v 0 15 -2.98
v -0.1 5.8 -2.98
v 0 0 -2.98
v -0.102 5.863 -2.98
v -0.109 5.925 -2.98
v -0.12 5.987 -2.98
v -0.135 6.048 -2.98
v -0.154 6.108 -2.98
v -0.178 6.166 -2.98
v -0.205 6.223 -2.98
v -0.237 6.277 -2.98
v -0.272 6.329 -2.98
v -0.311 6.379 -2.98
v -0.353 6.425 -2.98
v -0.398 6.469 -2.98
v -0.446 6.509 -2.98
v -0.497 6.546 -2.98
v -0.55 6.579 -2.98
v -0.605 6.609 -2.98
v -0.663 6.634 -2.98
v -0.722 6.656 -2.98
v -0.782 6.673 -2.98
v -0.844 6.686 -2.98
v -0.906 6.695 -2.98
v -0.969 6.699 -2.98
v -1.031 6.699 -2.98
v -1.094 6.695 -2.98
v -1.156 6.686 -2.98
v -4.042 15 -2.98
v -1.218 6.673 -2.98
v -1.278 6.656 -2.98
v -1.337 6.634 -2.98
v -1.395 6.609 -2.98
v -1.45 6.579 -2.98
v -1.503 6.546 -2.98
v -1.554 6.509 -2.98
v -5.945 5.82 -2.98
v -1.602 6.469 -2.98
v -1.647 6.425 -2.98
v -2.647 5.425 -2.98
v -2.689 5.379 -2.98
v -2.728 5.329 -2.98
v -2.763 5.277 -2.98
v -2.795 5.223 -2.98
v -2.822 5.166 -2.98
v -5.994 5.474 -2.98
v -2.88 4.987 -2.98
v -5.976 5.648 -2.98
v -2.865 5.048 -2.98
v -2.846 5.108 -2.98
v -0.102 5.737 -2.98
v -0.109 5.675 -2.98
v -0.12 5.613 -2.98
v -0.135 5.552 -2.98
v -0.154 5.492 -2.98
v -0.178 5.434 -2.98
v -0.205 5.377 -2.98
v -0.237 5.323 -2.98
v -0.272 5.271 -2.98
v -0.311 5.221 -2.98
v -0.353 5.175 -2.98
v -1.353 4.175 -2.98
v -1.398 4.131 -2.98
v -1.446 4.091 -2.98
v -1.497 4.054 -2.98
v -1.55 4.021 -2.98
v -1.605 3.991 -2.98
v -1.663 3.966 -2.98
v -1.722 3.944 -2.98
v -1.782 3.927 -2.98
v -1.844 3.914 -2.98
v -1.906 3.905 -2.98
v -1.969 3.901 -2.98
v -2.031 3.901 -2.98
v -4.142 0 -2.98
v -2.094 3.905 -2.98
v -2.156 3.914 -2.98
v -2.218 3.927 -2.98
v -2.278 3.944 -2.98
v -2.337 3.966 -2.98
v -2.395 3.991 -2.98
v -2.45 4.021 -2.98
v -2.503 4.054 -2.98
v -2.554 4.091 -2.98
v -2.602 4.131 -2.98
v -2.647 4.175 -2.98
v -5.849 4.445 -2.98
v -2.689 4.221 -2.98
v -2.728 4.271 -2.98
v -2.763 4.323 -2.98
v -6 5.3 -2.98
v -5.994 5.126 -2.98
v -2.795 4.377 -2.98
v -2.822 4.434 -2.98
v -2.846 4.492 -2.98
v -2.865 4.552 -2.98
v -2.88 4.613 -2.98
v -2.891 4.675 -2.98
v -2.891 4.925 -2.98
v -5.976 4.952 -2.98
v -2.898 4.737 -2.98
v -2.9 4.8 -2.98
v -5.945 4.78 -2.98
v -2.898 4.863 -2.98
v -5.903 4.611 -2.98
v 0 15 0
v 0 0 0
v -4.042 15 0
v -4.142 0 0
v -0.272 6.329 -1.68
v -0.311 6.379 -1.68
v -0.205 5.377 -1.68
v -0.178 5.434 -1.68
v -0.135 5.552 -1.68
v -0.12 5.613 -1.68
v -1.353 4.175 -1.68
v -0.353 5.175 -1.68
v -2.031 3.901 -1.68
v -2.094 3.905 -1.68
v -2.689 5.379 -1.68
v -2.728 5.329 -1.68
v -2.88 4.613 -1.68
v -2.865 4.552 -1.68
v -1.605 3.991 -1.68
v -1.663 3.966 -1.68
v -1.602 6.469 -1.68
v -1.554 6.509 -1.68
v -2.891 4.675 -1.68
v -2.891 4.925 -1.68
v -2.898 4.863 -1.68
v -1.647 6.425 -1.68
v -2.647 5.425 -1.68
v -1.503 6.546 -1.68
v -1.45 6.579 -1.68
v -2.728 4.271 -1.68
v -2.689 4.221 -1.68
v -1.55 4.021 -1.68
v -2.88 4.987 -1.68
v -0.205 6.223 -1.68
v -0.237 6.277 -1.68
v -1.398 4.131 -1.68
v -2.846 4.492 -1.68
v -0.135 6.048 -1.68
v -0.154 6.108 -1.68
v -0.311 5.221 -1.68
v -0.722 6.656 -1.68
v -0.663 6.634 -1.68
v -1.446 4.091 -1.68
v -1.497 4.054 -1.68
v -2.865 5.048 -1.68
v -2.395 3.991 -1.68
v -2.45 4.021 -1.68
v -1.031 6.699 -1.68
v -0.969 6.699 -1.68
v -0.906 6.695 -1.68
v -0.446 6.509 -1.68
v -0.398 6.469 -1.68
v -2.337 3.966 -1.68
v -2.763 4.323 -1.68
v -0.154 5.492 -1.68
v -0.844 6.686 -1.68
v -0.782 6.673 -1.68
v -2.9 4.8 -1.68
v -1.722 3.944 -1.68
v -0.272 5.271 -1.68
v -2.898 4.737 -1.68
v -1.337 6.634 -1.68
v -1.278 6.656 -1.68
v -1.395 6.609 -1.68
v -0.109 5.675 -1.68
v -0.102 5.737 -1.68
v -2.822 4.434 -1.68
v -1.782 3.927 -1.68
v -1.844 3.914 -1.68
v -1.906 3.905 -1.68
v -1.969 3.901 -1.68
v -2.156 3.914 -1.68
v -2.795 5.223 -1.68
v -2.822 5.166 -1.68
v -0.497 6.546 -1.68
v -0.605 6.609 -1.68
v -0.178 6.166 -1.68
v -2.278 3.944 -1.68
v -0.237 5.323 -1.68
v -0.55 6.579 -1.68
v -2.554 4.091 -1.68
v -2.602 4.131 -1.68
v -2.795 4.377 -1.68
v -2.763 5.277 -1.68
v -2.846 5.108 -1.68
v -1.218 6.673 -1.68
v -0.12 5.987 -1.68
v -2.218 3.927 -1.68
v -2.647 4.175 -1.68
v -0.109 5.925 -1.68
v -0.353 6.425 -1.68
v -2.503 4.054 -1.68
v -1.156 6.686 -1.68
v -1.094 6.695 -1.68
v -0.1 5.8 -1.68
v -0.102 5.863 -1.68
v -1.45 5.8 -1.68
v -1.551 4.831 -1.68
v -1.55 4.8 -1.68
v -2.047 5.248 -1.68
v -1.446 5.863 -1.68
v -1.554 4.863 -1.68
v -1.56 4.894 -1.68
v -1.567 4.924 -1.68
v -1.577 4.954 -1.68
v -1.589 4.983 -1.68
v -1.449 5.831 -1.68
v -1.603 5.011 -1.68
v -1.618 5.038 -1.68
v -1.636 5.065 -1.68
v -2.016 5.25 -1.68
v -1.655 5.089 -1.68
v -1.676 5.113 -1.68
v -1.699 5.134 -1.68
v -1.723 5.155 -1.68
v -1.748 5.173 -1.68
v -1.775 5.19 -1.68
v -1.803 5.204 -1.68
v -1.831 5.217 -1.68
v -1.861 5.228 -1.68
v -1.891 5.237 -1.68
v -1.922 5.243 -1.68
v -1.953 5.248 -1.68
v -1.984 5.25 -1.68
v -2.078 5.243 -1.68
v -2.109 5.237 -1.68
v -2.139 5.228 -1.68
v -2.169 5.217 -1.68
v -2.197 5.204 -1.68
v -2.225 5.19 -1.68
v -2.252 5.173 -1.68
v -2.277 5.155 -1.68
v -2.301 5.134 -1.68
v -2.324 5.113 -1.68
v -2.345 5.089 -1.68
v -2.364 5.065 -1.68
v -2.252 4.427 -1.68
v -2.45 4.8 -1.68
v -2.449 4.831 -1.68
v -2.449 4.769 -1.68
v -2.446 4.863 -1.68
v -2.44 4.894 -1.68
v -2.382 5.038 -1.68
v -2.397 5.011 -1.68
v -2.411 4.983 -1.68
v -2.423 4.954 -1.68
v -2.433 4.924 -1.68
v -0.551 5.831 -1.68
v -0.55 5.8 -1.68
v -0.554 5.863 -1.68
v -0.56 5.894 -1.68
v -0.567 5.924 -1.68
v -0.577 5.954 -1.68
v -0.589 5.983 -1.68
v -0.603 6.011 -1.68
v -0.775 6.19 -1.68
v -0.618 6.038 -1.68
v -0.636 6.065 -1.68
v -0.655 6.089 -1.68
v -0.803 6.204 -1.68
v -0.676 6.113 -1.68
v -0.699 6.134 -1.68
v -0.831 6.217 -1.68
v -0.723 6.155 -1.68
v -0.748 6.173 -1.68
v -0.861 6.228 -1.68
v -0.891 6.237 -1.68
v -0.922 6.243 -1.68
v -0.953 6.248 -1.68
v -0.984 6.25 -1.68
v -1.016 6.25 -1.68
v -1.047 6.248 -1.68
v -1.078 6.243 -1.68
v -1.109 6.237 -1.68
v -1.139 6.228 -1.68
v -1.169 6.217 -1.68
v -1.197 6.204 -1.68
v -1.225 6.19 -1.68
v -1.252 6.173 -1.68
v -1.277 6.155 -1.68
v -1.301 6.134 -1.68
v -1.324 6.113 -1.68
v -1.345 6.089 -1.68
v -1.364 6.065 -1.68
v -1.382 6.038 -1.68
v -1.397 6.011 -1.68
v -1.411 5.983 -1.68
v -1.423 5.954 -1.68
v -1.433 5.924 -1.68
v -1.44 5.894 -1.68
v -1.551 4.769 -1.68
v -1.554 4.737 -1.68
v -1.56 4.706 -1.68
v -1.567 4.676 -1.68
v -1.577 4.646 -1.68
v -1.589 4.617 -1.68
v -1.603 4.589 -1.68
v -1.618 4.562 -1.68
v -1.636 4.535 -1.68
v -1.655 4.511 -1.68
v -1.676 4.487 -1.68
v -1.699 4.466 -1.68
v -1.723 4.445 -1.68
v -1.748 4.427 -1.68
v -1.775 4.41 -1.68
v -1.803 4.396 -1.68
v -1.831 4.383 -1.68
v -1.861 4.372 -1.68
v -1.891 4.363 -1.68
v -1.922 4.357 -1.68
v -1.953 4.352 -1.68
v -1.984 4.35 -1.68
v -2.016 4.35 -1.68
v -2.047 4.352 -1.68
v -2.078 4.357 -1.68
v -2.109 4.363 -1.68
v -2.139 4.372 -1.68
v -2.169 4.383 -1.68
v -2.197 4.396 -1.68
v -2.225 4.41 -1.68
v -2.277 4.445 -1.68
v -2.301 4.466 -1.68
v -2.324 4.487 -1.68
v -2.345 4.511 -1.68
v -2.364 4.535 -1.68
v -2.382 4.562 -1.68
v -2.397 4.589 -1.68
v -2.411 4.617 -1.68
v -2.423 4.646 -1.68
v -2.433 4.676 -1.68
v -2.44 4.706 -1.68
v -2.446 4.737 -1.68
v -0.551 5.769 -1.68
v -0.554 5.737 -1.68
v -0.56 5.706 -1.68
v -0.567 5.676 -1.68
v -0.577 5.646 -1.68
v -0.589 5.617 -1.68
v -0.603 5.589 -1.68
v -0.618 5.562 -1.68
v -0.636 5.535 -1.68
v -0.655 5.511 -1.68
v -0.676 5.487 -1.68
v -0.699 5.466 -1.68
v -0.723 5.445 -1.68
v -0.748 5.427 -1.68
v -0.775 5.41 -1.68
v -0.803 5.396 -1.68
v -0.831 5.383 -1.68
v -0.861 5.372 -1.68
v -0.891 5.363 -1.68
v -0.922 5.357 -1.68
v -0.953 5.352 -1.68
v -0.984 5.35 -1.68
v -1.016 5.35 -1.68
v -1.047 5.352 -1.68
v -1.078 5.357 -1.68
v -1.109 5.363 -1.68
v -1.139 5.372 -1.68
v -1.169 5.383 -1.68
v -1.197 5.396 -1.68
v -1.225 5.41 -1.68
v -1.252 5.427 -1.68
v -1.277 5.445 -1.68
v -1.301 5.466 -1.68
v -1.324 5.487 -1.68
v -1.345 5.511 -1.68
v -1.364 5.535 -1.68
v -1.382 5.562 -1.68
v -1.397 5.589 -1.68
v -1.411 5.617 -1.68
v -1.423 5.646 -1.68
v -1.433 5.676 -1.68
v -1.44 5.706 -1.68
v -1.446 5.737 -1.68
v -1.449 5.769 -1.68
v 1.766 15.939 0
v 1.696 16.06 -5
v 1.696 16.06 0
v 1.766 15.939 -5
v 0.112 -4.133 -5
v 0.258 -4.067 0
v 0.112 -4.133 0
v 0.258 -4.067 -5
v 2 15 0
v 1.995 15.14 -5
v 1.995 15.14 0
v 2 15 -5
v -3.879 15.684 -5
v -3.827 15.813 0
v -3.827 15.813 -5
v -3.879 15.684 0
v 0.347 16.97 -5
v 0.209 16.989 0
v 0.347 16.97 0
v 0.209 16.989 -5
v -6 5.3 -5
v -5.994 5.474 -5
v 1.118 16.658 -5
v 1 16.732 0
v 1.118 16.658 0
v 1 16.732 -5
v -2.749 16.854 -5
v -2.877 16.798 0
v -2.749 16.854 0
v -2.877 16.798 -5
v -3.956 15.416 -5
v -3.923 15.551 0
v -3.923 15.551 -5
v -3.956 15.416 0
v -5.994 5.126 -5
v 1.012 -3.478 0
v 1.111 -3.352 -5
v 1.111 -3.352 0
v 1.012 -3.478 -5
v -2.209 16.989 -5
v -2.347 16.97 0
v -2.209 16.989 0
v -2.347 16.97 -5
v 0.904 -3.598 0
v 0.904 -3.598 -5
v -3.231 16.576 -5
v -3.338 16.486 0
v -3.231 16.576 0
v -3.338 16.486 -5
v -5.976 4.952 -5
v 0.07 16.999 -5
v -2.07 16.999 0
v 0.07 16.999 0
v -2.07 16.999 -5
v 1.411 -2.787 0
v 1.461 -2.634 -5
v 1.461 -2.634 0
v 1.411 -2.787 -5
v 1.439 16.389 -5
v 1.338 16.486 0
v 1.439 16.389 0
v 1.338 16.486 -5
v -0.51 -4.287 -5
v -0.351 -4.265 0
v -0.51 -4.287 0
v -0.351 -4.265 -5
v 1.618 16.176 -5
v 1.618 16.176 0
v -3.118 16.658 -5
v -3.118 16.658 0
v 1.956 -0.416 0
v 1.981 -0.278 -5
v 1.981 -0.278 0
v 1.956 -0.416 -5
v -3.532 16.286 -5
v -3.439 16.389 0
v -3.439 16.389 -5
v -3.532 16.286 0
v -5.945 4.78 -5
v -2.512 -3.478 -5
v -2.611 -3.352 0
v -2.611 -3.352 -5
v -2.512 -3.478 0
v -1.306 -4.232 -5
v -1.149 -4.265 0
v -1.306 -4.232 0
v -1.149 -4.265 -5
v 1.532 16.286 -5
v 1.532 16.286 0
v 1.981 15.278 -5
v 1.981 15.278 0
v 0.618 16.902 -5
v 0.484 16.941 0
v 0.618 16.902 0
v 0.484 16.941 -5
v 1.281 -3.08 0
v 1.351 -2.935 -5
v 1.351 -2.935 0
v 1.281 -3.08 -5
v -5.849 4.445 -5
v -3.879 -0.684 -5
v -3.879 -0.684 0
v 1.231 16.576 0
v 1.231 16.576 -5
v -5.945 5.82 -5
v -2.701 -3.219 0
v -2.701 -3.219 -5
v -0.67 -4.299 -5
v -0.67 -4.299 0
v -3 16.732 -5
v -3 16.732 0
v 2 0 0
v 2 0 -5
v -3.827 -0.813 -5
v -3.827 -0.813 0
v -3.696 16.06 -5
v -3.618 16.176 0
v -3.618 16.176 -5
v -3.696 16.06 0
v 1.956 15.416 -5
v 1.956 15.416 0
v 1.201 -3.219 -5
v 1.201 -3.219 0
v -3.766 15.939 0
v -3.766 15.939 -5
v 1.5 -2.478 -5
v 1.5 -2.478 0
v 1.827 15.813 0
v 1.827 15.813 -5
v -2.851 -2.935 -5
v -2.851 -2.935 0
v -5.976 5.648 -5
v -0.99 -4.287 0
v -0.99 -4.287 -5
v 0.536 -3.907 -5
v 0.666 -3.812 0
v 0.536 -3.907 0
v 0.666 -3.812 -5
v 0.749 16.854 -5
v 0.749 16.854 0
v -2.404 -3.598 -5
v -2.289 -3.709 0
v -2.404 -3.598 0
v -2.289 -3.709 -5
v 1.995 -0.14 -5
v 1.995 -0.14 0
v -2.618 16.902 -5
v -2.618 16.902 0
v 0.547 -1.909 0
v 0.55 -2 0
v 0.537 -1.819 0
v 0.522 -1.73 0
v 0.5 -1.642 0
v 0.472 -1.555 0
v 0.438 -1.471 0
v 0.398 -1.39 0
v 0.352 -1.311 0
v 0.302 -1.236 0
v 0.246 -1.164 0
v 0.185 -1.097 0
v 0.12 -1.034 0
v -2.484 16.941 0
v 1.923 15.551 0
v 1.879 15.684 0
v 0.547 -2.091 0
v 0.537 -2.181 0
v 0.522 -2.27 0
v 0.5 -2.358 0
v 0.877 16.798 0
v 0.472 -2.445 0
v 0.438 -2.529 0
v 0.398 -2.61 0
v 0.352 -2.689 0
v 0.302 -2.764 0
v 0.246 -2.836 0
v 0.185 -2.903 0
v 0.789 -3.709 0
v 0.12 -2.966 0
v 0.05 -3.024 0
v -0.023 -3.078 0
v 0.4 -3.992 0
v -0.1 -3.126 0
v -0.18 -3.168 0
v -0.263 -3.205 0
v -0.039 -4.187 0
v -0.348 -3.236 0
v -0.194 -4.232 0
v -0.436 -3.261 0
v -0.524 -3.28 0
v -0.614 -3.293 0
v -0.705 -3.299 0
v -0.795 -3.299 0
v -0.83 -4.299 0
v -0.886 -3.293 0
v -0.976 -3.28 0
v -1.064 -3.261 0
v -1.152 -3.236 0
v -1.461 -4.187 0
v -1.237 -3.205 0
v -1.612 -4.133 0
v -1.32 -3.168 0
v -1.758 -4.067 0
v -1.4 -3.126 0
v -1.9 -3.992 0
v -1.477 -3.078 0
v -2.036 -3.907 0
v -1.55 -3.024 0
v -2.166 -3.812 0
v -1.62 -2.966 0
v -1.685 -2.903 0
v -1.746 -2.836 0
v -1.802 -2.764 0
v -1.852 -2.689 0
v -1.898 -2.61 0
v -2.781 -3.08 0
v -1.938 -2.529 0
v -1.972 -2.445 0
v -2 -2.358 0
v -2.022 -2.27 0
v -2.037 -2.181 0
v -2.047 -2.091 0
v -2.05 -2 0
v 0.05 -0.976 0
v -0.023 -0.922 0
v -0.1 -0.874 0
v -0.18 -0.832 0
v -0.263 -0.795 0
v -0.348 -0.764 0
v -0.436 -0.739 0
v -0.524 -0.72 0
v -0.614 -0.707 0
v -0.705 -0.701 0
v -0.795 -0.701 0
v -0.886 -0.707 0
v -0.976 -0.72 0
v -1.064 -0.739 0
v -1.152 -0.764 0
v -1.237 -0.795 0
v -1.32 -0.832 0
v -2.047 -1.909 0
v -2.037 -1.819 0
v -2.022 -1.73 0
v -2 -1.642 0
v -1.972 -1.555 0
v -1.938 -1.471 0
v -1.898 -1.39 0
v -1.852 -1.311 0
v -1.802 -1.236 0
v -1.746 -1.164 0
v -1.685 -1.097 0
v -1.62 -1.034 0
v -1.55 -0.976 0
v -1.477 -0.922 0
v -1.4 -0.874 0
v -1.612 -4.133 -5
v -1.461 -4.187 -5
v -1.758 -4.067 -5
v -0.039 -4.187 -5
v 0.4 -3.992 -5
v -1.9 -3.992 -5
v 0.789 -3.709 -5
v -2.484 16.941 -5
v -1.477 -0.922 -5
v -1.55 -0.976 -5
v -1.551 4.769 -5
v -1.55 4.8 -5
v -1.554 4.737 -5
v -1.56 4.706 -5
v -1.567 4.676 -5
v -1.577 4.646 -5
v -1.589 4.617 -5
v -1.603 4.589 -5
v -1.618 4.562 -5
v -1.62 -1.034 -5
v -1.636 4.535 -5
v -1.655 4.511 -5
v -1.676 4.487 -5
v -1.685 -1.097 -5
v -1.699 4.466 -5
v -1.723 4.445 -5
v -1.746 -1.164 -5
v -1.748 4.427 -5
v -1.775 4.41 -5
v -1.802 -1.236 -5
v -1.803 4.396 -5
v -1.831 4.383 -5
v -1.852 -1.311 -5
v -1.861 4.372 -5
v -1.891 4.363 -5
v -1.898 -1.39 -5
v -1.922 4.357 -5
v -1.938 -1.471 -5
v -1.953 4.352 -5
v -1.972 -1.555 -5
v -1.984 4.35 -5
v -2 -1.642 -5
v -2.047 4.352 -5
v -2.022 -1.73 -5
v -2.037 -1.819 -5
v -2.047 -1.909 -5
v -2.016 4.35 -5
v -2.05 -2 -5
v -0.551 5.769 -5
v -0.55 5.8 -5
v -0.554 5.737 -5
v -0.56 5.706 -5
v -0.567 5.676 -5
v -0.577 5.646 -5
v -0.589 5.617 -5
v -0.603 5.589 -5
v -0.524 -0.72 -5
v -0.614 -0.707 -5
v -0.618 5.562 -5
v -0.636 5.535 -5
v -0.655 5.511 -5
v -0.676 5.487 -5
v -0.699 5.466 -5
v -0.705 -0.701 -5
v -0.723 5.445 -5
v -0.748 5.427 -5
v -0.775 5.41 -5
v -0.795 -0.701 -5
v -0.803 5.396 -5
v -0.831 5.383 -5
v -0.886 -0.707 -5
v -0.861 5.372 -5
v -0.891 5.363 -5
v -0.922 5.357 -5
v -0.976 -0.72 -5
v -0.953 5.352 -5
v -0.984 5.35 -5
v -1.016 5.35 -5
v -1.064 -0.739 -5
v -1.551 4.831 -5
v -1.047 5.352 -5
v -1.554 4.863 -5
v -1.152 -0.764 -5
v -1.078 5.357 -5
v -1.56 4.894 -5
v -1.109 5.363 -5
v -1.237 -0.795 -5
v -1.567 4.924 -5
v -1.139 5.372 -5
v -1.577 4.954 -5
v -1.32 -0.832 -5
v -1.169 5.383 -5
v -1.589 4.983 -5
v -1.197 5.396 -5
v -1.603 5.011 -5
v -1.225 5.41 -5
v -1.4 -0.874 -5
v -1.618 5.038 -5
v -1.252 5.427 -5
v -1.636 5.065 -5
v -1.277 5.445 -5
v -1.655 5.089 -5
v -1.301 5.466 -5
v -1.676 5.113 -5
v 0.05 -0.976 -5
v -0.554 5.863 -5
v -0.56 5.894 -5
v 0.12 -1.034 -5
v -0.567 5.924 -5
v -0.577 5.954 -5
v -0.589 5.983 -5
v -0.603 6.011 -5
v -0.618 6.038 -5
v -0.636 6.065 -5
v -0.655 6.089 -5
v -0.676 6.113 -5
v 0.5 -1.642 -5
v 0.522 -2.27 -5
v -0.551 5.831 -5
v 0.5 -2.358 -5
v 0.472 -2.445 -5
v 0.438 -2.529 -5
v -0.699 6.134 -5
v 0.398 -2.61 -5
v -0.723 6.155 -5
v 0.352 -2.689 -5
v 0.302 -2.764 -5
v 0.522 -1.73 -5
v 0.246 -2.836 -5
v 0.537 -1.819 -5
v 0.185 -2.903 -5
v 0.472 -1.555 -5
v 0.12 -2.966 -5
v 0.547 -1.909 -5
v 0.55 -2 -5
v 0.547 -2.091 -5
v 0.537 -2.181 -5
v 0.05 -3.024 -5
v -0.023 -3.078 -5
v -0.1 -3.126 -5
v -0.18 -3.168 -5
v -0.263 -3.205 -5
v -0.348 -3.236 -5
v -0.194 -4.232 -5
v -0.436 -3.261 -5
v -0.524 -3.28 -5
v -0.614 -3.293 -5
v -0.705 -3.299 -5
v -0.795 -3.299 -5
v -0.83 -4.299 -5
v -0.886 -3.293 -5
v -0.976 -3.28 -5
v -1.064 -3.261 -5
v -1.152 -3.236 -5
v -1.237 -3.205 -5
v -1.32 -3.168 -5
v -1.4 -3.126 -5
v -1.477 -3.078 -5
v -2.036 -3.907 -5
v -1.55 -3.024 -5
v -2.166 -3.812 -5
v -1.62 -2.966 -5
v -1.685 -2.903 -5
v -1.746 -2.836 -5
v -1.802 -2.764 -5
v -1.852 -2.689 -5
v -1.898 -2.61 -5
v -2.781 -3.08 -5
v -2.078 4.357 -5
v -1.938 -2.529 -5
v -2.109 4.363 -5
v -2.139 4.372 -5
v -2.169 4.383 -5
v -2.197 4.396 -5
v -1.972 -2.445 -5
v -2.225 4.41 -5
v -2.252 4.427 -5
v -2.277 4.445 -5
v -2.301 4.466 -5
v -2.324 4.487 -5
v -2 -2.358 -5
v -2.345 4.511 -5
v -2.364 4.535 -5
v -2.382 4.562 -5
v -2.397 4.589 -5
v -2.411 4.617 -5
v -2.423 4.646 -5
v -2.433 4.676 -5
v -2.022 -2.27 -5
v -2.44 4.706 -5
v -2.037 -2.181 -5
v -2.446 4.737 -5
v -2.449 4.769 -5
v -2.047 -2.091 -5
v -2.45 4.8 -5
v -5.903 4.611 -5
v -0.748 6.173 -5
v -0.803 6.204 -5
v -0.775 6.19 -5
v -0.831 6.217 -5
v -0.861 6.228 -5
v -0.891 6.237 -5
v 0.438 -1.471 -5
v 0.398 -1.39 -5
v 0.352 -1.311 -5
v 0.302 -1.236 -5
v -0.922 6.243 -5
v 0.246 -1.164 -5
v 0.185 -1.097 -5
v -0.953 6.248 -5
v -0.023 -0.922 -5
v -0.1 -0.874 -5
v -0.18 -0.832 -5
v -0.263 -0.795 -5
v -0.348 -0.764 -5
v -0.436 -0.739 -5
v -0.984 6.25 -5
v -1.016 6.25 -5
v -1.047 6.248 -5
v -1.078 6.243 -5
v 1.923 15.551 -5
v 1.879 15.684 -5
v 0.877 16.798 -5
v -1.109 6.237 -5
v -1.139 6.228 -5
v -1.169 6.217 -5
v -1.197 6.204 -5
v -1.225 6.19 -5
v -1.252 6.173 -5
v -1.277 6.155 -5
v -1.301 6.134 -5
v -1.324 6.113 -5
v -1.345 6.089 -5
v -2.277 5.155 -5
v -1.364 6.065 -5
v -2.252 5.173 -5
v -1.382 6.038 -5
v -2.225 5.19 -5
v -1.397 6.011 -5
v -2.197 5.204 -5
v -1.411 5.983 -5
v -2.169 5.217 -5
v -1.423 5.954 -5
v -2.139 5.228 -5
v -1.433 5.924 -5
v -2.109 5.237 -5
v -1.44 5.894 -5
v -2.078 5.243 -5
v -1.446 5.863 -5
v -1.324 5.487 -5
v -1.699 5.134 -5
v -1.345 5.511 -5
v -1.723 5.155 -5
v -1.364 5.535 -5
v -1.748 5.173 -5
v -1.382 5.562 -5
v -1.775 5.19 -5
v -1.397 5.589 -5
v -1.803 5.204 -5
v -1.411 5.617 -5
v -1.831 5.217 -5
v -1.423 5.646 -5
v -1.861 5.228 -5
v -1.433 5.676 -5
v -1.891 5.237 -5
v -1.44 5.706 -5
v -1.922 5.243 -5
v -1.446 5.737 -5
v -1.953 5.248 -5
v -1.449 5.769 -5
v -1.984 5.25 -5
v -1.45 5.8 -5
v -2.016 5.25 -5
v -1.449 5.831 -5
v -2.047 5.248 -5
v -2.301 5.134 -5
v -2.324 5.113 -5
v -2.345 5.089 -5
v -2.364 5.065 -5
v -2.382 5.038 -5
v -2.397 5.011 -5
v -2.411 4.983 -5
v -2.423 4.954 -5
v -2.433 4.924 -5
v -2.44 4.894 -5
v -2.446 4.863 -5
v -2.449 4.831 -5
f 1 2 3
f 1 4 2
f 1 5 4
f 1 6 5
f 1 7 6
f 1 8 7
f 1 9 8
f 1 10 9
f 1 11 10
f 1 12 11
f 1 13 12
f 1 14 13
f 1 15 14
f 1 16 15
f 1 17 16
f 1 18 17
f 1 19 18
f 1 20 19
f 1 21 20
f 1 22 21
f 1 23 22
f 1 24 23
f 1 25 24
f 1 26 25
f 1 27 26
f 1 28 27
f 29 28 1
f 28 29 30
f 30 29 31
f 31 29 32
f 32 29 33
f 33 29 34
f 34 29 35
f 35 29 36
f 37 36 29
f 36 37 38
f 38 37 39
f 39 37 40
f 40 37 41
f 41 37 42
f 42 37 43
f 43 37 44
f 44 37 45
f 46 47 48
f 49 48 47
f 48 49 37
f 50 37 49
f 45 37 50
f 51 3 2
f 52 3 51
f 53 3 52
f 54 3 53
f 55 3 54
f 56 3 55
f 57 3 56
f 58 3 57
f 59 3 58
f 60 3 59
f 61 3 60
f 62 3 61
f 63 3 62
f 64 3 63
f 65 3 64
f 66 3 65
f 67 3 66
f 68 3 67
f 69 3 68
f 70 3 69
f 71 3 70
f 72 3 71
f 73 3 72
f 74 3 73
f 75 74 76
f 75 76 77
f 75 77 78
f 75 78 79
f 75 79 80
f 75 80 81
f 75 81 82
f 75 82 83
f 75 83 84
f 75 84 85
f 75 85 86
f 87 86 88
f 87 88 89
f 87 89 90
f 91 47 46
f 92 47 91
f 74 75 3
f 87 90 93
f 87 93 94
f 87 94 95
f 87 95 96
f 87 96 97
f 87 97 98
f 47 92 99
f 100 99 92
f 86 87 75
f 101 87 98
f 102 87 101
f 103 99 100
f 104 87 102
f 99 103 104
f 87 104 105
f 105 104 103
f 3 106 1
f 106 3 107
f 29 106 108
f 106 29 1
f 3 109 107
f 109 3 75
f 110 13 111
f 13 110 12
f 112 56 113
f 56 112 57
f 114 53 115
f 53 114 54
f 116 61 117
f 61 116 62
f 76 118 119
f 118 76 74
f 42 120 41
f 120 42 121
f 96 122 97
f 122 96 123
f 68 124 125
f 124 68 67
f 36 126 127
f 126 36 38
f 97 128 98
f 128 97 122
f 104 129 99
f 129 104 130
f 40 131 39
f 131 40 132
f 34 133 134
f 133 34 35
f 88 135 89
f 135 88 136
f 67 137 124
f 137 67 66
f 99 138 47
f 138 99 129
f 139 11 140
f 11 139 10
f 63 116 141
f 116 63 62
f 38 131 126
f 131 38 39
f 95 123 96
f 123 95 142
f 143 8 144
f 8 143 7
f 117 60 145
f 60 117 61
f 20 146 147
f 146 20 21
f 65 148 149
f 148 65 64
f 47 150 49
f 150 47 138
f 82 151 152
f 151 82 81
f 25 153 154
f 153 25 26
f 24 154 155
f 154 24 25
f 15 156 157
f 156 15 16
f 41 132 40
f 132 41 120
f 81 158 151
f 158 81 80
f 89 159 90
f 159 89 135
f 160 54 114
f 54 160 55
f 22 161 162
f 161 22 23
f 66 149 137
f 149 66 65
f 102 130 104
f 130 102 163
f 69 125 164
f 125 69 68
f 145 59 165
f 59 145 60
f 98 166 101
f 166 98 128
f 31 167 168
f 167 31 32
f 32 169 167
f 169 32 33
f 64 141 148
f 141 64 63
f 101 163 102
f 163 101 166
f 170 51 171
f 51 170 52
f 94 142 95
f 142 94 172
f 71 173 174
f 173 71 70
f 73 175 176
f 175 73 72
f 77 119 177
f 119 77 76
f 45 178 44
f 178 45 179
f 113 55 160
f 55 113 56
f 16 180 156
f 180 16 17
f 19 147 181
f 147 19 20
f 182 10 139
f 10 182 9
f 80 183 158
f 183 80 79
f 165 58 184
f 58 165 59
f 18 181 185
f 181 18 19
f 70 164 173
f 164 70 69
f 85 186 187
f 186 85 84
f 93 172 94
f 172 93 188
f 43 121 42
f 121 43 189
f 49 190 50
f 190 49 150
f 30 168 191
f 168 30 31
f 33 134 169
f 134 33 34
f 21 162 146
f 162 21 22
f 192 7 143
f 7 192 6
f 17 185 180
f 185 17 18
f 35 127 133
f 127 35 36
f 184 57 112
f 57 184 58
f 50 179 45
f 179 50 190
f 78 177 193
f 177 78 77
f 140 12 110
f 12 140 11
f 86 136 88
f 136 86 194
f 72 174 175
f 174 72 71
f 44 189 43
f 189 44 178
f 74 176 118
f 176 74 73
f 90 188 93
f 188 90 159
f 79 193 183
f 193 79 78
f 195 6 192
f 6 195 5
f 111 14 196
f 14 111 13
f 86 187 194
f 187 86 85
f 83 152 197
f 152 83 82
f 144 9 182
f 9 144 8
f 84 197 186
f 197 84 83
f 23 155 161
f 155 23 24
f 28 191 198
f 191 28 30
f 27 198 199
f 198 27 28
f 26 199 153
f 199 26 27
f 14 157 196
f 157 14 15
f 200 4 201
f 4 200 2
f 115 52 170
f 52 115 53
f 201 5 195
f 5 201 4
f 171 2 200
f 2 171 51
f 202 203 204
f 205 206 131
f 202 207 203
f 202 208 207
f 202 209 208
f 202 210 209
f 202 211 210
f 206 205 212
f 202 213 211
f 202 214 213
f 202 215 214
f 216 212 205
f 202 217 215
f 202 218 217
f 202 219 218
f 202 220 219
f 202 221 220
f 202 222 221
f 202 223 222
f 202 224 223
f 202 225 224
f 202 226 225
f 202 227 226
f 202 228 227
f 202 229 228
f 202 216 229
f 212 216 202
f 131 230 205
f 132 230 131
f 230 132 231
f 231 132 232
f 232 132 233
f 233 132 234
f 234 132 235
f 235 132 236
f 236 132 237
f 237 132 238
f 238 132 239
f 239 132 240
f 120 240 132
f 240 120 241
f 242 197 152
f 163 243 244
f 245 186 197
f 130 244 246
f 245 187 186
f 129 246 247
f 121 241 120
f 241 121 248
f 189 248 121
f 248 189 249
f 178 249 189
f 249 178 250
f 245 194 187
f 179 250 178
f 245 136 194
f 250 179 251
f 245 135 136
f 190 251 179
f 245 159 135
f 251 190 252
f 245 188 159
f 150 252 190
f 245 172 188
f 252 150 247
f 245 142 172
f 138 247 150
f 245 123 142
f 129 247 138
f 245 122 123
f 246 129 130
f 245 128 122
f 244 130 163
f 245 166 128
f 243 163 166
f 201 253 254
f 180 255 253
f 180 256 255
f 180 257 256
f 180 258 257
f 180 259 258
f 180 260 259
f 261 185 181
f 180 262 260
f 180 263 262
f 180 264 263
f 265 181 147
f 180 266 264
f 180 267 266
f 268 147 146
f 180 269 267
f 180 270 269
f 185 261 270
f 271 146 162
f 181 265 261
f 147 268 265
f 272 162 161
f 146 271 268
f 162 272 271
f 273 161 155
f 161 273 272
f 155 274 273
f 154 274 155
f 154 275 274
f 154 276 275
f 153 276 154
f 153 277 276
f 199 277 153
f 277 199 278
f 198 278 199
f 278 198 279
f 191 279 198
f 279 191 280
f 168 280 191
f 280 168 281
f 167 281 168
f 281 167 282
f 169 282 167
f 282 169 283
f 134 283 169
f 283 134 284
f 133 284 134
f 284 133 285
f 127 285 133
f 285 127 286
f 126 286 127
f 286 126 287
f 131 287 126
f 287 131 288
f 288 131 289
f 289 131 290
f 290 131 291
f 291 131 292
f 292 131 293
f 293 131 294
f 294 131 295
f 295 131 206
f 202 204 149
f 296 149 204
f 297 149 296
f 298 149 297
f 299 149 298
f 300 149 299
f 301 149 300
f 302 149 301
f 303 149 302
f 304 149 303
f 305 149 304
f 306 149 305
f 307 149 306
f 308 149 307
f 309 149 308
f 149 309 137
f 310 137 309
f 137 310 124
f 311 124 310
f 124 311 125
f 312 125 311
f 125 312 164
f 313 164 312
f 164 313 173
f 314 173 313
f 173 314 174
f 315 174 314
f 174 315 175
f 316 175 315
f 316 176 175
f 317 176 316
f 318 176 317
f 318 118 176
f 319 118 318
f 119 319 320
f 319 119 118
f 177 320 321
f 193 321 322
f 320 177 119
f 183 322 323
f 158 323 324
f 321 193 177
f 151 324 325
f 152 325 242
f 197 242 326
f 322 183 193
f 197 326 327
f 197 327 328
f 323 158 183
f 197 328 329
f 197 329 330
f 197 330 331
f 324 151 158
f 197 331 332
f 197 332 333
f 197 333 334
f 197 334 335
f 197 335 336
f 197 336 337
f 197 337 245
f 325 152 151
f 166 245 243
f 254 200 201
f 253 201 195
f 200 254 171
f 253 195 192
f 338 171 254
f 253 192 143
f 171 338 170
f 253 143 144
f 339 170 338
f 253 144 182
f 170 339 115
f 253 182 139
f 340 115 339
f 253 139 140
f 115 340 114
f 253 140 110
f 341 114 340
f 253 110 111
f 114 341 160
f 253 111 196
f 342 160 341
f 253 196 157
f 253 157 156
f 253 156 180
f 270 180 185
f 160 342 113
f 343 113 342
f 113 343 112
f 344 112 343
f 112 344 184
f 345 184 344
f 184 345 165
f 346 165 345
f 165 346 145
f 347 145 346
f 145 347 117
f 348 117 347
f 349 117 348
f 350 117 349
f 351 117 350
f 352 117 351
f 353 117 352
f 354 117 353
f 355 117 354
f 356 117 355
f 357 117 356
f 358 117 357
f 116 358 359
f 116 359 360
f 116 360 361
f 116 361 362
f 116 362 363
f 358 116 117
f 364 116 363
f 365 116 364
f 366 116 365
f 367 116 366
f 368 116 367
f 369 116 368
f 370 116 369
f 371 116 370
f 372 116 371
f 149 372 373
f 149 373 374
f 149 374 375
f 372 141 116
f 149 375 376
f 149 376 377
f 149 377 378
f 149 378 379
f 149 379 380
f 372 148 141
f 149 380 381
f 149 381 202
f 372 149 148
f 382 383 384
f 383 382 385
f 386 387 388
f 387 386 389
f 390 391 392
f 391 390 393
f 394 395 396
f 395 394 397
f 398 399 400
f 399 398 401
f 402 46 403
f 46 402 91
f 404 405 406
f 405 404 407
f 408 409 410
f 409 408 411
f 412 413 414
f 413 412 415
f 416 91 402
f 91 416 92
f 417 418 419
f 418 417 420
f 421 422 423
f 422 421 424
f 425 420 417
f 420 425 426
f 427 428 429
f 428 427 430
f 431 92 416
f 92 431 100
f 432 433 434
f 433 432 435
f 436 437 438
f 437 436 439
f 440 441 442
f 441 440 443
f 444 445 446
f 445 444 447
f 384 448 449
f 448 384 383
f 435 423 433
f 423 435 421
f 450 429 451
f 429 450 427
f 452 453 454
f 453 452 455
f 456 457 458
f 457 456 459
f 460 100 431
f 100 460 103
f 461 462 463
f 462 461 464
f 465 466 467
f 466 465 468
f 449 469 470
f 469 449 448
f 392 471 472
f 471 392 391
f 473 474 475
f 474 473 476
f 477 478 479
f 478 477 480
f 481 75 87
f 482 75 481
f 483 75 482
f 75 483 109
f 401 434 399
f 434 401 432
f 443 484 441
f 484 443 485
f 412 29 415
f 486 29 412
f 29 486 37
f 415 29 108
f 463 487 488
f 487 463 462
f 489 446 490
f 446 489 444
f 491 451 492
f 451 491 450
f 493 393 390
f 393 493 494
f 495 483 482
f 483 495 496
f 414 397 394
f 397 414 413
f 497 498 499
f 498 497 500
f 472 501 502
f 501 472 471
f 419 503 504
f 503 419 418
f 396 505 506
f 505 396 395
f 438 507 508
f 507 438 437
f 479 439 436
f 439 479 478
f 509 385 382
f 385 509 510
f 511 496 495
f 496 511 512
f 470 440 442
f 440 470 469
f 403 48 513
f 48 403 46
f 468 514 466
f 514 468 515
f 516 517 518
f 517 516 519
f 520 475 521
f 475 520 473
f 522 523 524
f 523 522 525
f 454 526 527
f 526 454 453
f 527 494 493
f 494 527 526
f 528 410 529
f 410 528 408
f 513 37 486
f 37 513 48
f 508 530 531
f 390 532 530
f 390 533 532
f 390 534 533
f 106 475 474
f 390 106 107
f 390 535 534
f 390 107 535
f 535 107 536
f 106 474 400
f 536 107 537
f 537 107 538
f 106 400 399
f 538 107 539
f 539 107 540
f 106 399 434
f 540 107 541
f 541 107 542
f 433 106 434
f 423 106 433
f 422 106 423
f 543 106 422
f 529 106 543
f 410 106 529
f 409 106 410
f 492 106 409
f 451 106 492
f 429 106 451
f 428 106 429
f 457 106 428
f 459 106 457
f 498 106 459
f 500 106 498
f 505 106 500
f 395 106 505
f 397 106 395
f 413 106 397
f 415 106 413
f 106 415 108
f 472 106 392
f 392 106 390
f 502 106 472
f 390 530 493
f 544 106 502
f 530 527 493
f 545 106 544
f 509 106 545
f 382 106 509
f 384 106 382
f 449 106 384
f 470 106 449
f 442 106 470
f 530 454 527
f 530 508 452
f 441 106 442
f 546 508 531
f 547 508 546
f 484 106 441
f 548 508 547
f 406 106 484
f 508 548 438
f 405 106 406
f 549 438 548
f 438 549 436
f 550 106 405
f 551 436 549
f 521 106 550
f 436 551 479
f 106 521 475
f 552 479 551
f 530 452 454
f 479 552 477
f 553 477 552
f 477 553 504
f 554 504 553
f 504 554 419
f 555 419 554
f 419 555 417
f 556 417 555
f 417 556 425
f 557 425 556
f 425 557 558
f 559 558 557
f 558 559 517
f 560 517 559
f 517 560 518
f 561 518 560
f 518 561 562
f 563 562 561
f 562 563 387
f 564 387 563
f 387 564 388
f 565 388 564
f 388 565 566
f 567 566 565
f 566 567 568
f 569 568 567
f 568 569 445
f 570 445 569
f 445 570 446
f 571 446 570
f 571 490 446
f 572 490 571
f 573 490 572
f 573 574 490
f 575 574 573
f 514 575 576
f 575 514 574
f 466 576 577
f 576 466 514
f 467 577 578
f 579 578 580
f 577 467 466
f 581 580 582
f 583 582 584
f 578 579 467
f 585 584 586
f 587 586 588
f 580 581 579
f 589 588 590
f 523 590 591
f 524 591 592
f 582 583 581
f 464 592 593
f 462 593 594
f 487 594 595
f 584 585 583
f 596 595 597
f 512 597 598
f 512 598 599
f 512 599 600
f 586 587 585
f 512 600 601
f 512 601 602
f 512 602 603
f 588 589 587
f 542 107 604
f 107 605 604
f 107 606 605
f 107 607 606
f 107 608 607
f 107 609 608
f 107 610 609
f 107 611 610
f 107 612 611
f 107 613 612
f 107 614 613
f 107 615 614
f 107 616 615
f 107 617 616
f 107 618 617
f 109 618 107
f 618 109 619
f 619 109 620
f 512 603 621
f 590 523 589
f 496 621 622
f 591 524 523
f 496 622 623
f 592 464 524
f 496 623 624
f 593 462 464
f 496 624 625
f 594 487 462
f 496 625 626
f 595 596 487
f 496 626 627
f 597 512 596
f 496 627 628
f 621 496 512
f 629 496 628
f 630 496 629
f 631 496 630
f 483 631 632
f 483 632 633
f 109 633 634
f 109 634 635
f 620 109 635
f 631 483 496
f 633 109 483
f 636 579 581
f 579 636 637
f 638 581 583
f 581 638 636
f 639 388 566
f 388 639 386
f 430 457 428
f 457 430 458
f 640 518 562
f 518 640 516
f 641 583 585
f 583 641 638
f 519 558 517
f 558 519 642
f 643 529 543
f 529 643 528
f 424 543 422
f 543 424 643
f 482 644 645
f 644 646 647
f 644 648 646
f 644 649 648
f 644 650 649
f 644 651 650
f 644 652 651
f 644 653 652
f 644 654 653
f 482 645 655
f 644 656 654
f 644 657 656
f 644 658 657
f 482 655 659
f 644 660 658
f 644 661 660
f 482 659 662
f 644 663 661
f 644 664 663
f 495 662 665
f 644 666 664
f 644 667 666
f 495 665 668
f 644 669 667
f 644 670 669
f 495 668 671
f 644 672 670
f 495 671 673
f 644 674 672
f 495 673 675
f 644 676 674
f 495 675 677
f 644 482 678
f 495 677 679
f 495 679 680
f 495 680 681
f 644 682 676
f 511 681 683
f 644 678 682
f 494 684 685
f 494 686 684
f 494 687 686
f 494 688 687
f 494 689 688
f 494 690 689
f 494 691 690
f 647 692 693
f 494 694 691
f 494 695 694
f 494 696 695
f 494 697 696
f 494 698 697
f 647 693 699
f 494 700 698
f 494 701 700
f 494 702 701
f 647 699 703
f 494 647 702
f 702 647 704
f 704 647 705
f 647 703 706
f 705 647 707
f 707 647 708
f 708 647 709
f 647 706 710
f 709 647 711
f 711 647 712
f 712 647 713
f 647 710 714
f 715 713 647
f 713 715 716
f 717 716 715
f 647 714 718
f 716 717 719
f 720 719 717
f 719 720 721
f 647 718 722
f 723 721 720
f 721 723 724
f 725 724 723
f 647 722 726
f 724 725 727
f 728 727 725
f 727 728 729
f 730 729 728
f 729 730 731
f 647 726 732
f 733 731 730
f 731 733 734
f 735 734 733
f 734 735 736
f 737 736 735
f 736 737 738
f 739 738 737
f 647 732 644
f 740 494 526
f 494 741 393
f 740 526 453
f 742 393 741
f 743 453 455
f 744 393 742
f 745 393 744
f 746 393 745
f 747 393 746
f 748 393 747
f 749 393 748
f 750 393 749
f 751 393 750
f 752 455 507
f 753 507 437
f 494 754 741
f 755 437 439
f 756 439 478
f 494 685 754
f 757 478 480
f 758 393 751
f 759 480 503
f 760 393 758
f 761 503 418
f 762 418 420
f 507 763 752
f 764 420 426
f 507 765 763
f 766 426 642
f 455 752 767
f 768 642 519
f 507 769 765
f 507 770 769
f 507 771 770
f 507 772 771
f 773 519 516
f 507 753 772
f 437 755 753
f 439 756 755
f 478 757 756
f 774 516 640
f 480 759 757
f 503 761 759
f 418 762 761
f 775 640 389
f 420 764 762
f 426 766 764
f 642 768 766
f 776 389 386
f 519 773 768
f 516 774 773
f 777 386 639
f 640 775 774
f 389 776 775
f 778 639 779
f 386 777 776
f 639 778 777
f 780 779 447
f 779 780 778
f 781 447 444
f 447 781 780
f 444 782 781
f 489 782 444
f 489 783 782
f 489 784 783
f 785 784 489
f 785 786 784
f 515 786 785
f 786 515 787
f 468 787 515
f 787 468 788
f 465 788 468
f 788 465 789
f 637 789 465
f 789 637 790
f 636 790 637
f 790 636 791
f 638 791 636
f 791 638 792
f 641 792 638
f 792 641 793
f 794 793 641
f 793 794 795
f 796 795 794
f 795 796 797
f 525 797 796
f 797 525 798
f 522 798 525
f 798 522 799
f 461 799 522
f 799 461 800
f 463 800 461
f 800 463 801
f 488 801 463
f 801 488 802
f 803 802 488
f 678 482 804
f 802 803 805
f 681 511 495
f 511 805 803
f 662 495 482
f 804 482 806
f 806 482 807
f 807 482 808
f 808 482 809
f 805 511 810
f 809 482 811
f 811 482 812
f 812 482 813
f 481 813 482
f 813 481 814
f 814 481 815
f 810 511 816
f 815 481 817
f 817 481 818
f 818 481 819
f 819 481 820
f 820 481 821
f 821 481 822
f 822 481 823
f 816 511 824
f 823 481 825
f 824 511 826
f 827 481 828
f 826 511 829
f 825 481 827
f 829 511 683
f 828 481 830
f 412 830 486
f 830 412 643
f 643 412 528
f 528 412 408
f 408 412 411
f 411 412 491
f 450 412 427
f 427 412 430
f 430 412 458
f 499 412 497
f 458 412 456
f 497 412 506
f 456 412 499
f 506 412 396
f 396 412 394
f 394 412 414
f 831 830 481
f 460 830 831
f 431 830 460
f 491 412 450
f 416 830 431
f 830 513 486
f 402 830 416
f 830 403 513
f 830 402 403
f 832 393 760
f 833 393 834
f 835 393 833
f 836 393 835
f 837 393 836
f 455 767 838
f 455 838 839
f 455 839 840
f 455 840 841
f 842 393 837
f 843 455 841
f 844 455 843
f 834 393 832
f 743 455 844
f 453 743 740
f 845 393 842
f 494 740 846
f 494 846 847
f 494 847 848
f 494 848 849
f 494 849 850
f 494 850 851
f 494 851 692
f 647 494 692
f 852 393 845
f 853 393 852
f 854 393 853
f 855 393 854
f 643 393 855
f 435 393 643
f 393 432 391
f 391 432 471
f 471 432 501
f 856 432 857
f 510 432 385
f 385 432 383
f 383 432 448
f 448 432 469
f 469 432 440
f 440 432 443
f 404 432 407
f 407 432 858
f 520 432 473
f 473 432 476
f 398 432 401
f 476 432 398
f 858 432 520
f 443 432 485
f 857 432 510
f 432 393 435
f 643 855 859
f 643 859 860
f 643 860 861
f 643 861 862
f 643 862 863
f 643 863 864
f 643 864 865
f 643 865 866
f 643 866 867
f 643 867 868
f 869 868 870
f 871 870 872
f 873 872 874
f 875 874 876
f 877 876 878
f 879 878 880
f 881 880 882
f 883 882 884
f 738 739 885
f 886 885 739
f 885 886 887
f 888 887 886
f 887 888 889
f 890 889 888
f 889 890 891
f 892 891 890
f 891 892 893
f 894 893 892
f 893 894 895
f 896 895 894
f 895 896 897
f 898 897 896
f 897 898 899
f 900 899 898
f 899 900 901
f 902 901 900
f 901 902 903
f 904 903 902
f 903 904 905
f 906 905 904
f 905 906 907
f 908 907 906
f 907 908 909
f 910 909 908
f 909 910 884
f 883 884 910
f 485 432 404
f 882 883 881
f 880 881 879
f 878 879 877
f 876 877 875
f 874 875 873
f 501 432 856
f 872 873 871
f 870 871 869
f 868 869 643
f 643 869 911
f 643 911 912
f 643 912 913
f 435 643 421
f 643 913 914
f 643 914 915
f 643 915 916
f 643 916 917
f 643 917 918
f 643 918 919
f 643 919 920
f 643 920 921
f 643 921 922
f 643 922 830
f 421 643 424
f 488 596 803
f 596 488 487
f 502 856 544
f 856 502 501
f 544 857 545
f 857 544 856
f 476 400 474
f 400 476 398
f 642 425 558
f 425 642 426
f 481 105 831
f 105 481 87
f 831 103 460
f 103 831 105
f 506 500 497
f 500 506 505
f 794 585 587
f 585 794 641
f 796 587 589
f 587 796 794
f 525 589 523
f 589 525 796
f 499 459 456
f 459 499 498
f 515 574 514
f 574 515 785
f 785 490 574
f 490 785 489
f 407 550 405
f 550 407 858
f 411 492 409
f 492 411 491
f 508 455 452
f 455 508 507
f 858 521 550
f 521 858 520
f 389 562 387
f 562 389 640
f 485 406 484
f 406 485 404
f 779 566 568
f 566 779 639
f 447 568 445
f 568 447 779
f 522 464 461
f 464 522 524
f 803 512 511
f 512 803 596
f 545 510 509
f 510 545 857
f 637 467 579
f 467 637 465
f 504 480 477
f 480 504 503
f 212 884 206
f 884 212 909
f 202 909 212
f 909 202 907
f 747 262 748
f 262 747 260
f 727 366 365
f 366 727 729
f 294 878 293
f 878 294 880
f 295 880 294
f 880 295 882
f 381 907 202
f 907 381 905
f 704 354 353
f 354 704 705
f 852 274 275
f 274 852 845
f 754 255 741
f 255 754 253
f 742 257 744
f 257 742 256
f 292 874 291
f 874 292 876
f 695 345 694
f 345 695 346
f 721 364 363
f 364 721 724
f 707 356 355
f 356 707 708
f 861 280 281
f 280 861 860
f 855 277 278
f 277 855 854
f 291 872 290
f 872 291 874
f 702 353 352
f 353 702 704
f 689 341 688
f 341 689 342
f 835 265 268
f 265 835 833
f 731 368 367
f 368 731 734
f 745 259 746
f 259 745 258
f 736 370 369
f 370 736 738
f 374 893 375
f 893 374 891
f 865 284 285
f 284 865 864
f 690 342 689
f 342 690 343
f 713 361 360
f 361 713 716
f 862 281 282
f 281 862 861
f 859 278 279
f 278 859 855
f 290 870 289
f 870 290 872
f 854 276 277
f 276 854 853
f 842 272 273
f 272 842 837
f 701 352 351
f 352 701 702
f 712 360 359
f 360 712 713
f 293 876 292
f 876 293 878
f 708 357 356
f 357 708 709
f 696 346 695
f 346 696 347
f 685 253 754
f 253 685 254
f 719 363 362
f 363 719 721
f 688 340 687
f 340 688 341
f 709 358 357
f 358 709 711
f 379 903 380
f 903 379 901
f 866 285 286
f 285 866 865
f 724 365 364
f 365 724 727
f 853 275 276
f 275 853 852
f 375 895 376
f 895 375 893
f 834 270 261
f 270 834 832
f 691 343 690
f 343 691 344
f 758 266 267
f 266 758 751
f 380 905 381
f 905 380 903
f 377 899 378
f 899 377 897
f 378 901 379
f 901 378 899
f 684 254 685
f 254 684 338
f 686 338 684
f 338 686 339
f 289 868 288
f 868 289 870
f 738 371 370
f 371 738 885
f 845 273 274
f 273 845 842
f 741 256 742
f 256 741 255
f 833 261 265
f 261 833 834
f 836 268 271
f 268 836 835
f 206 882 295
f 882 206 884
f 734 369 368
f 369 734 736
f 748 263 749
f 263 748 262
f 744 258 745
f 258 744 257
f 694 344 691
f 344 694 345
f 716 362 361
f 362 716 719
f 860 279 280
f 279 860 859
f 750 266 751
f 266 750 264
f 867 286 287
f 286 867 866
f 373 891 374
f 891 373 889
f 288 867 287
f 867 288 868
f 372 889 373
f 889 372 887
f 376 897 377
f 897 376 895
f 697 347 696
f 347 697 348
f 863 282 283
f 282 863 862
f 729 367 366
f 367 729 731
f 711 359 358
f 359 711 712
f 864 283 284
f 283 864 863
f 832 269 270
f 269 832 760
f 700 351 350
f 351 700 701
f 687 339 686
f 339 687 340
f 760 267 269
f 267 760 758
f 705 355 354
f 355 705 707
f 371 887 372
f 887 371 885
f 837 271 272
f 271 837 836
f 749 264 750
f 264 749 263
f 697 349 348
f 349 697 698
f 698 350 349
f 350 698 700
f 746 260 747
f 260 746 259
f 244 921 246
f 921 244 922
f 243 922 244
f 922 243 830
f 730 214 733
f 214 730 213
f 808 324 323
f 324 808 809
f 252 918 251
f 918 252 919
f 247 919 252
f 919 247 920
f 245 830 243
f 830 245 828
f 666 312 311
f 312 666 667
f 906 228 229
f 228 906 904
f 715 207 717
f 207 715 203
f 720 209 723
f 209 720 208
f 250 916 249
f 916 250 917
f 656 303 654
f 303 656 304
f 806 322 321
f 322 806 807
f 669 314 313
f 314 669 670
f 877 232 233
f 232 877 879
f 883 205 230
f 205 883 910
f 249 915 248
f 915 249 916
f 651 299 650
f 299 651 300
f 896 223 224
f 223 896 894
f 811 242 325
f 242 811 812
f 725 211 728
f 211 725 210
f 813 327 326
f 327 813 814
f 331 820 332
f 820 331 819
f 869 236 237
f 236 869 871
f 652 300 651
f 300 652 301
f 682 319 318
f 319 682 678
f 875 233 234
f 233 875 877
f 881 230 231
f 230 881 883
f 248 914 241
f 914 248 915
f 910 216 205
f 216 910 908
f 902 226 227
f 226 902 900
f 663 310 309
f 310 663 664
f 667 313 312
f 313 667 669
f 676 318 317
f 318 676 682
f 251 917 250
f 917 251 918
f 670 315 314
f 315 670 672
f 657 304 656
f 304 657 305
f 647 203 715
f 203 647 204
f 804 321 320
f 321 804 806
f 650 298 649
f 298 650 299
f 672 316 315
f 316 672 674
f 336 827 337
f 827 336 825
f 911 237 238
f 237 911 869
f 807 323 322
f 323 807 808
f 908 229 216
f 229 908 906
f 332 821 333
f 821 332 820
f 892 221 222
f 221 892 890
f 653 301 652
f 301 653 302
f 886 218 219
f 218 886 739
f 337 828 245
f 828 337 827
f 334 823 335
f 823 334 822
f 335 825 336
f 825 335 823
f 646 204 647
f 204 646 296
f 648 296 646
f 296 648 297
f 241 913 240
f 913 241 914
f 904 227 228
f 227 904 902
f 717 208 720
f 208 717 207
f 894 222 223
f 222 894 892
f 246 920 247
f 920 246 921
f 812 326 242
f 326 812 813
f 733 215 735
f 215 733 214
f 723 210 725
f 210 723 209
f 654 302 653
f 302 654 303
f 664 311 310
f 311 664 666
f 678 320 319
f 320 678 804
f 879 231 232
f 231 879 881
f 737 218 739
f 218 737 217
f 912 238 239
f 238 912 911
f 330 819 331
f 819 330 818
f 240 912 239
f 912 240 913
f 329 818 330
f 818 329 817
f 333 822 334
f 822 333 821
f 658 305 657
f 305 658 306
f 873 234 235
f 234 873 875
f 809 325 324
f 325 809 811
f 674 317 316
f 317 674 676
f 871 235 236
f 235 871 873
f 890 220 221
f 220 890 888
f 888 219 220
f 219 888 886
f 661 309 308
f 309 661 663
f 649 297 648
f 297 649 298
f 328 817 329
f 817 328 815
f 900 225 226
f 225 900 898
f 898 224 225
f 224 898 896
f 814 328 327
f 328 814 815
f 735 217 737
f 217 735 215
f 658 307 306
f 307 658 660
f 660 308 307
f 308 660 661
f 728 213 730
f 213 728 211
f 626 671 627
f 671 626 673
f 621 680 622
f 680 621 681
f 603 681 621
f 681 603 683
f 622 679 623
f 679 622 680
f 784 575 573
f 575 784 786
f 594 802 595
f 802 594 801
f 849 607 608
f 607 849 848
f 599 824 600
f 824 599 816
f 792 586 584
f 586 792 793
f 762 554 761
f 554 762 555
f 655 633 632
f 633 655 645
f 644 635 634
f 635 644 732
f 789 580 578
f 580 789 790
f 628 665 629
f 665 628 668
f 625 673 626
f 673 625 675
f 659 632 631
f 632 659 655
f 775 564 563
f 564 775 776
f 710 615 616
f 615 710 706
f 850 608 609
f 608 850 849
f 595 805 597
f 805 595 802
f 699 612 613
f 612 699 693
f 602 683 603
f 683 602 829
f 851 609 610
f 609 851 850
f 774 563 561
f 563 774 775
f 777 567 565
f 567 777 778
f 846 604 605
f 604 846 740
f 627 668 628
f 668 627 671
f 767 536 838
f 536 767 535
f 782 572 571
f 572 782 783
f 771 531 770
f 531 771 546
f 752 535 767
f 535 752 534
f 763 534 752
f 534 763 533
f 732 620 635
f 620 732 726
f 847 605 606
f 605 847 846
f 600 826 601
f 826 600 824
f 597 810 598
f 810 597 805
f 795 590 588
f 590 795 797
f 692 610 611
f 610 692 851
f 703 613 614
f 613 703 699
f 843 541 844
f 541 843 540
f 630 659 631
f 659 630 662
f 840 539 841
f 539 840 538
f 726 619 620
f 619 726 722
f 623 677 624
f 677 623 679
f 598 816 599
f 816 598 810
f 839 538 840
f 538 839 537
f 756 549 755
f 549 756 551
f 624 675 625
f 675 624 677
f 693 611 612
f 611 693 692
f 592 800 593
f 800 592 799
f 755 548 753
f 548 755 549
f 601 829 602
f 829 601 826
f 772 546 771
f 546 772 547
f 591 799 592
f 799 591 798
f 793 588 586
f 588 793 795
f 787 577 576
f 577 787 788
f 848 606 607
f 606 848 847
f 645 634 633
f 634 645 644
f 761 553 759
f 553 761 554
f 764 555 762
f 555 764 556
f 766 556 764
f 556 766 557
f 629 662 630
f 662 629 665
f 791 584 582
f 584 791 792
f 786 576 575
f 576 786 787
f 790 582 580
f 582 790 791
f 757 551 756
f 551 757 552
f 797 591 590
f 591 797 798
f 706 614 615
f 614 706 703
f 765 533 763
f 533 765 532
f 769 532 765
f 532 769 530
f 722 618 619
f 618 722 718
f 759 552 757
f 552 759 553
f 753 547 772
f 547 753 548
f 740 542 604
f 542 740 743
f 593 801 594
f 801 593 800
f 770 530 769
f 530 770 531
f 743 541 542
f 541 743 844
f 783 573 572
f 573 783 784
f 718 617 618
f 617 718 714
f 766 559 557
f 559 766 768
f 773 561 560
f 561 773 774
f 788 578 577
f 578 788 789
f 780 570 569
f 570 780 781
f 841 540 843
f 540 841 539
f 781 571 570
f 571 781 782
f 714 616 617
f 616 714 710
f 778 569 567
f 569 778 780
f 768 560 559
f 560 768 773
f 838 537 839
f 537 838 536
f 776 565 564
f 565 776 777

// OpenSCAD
/*
2022-07-23
Notes: pin labeling did not print correctly so they have been commented out. The wire path intended for strain relief did not seem big enough for both wires and probably should be enlarged.

2022-07-02
This OpenSCAD design allows for OpenVTX bootloader programming onto the EWRF E7082VM board without needing to solder leads onto the CLK or DIO pads. You will still need to connect power and a common ground to the ST-LINK V2.  I have verified this print allowed me to flash OpenVTX bootloader to my VTX labeled 7082VM V12. I printed this in TPU/TPE and needed to re-poke holes for the wires with a sim card eject tool. I then ran some solid hook up wire as shown in images taking care that the wires do not short. In order to make good contact with the CLK and DIO pads I do recomend utilizing a sharp hobby knife to carefully shave the excess perferations from the side of the PCB until smooth.

*/
$fn=90;

BoardWidth=14;
BoardLength=15;
BoardThick=0.8;
PadRad=0.9*0.5; // actual diameter 0.6mm is a bit small for most printers
PadPostRad=1.8*0.5;
PadAWidth=1;
PadALength=5.8;
PadBWidth=2;
PadBLength=4.8;
HolderThick=3;
HolderPadding=2;
HolderBaseOverhang=3;
HolderMaxOverhang=6;
HolderMaxOverhangLength=(PadALength-PadBLength)*0.5+PadBLength;
HolderRad=5*0.5;
ConduitRad=2.6*0.5;
TextSize=2.1;


rotate([0,180,0]) EWRF_E7082VM_OpenVTX_bootloader_tool();

//
module EWRF_E7082VM_OpenVTX_bootloader_tool(){
difference(){
hull(){
// first corner
translate([0,0,(HolderThick+HolderPadding)*0.5]) cylinder(HolderThick+HolderPadding,HolderPadding,HolderPadding,true);
// far corner
translate([0,BoardLength,(HolderThick+HolderPadding)*0.5]) cylinder(HolderThick+HolderPadding,HolderPadding,HolderPadding,true);
// first corner
translate([HolderPadding,0,(HolderThick+HolderPadding)*0.5]) cylinder(HolderThick+HolderPadding,HolderPadding,HolderPadding,true);
// far corner
translate([HolderPadding,BoardLength,(HolderThick+HolderPadding)*0.5]) cylinder(HolderThick+HolderPadding,HolderPadding,HolderPadding,true);    
// thumb tab
translate([HolderMaxOverhang-HolderRad,HolderMaxOverhangLength,(HolderThick+HolderPadding)*0.5]) cylinder(HolderThick+HolderPadding,HolderRad,HolderRad,true);
// Conduit
translate([HolderBaseOverhang*0.25,-HolderPadding,(HolderThick+HolderPadding)*0.5]) cylinder(HolderThick+HolderPadding,ConduitRad+HolderPadding*0.5,ConduitRad+HolderPadding*0.5,true);
}
// begin main difference items
// main board cavity
difference(){
translate([0,0,-0.02]) cube([BoardWidth,BoardLength,HolderThick]);
hull(){
// PadA Post
translate([PadAWidth,PadALength,(HolderThick+HolderPadding)*1-BoardThick]) cylinder(HolderThick+HolderPadding+0.04,PadPostRad,PadPostRad,true);
// PadB Post
translate([PadBWidth,PadBLength,(HolderThick+HolderPadding)*1-BoardThick]) cylinder(HolderThick+HolderPadding+0.04,PadPostRad,PadPostRad,true);
}
}    
// PadA cavity
translate([PadAWidth,PadALength,(HolderThick+HolderPadding)*0.5]) cylinder(HolderThick+HolderPadding+0.04,PadRad,PadRad,true);
// PadB cavity
translate([PadBWidth,PadBLength,(HolderThick+HolderPadding)*0.5]) cylinder(HolderThick+HolderPadding+0.04,PadRad,PadRad,true);
//conduit cavity
translate([HolderBaseOverhang*0.25,-HolderPadding,(HolderThick+HolderPadding)*0.5]) cylinder(HolderThick+HolderPadding+0.04,ConduitRad,ConduitRad,true);
// text label DIO
//translate([-1.6,PadALength+1,HolderThick+HolderPadding-0.8]) linear_extrude(1) text("DIO", size = TextSize);
// text label CLK
//translate([-1.6,PadBLength-2.8,HolderThick+HolderPadding-0.8]) linear_extrude(1) text("CLK", size = TextSize);
}
}
